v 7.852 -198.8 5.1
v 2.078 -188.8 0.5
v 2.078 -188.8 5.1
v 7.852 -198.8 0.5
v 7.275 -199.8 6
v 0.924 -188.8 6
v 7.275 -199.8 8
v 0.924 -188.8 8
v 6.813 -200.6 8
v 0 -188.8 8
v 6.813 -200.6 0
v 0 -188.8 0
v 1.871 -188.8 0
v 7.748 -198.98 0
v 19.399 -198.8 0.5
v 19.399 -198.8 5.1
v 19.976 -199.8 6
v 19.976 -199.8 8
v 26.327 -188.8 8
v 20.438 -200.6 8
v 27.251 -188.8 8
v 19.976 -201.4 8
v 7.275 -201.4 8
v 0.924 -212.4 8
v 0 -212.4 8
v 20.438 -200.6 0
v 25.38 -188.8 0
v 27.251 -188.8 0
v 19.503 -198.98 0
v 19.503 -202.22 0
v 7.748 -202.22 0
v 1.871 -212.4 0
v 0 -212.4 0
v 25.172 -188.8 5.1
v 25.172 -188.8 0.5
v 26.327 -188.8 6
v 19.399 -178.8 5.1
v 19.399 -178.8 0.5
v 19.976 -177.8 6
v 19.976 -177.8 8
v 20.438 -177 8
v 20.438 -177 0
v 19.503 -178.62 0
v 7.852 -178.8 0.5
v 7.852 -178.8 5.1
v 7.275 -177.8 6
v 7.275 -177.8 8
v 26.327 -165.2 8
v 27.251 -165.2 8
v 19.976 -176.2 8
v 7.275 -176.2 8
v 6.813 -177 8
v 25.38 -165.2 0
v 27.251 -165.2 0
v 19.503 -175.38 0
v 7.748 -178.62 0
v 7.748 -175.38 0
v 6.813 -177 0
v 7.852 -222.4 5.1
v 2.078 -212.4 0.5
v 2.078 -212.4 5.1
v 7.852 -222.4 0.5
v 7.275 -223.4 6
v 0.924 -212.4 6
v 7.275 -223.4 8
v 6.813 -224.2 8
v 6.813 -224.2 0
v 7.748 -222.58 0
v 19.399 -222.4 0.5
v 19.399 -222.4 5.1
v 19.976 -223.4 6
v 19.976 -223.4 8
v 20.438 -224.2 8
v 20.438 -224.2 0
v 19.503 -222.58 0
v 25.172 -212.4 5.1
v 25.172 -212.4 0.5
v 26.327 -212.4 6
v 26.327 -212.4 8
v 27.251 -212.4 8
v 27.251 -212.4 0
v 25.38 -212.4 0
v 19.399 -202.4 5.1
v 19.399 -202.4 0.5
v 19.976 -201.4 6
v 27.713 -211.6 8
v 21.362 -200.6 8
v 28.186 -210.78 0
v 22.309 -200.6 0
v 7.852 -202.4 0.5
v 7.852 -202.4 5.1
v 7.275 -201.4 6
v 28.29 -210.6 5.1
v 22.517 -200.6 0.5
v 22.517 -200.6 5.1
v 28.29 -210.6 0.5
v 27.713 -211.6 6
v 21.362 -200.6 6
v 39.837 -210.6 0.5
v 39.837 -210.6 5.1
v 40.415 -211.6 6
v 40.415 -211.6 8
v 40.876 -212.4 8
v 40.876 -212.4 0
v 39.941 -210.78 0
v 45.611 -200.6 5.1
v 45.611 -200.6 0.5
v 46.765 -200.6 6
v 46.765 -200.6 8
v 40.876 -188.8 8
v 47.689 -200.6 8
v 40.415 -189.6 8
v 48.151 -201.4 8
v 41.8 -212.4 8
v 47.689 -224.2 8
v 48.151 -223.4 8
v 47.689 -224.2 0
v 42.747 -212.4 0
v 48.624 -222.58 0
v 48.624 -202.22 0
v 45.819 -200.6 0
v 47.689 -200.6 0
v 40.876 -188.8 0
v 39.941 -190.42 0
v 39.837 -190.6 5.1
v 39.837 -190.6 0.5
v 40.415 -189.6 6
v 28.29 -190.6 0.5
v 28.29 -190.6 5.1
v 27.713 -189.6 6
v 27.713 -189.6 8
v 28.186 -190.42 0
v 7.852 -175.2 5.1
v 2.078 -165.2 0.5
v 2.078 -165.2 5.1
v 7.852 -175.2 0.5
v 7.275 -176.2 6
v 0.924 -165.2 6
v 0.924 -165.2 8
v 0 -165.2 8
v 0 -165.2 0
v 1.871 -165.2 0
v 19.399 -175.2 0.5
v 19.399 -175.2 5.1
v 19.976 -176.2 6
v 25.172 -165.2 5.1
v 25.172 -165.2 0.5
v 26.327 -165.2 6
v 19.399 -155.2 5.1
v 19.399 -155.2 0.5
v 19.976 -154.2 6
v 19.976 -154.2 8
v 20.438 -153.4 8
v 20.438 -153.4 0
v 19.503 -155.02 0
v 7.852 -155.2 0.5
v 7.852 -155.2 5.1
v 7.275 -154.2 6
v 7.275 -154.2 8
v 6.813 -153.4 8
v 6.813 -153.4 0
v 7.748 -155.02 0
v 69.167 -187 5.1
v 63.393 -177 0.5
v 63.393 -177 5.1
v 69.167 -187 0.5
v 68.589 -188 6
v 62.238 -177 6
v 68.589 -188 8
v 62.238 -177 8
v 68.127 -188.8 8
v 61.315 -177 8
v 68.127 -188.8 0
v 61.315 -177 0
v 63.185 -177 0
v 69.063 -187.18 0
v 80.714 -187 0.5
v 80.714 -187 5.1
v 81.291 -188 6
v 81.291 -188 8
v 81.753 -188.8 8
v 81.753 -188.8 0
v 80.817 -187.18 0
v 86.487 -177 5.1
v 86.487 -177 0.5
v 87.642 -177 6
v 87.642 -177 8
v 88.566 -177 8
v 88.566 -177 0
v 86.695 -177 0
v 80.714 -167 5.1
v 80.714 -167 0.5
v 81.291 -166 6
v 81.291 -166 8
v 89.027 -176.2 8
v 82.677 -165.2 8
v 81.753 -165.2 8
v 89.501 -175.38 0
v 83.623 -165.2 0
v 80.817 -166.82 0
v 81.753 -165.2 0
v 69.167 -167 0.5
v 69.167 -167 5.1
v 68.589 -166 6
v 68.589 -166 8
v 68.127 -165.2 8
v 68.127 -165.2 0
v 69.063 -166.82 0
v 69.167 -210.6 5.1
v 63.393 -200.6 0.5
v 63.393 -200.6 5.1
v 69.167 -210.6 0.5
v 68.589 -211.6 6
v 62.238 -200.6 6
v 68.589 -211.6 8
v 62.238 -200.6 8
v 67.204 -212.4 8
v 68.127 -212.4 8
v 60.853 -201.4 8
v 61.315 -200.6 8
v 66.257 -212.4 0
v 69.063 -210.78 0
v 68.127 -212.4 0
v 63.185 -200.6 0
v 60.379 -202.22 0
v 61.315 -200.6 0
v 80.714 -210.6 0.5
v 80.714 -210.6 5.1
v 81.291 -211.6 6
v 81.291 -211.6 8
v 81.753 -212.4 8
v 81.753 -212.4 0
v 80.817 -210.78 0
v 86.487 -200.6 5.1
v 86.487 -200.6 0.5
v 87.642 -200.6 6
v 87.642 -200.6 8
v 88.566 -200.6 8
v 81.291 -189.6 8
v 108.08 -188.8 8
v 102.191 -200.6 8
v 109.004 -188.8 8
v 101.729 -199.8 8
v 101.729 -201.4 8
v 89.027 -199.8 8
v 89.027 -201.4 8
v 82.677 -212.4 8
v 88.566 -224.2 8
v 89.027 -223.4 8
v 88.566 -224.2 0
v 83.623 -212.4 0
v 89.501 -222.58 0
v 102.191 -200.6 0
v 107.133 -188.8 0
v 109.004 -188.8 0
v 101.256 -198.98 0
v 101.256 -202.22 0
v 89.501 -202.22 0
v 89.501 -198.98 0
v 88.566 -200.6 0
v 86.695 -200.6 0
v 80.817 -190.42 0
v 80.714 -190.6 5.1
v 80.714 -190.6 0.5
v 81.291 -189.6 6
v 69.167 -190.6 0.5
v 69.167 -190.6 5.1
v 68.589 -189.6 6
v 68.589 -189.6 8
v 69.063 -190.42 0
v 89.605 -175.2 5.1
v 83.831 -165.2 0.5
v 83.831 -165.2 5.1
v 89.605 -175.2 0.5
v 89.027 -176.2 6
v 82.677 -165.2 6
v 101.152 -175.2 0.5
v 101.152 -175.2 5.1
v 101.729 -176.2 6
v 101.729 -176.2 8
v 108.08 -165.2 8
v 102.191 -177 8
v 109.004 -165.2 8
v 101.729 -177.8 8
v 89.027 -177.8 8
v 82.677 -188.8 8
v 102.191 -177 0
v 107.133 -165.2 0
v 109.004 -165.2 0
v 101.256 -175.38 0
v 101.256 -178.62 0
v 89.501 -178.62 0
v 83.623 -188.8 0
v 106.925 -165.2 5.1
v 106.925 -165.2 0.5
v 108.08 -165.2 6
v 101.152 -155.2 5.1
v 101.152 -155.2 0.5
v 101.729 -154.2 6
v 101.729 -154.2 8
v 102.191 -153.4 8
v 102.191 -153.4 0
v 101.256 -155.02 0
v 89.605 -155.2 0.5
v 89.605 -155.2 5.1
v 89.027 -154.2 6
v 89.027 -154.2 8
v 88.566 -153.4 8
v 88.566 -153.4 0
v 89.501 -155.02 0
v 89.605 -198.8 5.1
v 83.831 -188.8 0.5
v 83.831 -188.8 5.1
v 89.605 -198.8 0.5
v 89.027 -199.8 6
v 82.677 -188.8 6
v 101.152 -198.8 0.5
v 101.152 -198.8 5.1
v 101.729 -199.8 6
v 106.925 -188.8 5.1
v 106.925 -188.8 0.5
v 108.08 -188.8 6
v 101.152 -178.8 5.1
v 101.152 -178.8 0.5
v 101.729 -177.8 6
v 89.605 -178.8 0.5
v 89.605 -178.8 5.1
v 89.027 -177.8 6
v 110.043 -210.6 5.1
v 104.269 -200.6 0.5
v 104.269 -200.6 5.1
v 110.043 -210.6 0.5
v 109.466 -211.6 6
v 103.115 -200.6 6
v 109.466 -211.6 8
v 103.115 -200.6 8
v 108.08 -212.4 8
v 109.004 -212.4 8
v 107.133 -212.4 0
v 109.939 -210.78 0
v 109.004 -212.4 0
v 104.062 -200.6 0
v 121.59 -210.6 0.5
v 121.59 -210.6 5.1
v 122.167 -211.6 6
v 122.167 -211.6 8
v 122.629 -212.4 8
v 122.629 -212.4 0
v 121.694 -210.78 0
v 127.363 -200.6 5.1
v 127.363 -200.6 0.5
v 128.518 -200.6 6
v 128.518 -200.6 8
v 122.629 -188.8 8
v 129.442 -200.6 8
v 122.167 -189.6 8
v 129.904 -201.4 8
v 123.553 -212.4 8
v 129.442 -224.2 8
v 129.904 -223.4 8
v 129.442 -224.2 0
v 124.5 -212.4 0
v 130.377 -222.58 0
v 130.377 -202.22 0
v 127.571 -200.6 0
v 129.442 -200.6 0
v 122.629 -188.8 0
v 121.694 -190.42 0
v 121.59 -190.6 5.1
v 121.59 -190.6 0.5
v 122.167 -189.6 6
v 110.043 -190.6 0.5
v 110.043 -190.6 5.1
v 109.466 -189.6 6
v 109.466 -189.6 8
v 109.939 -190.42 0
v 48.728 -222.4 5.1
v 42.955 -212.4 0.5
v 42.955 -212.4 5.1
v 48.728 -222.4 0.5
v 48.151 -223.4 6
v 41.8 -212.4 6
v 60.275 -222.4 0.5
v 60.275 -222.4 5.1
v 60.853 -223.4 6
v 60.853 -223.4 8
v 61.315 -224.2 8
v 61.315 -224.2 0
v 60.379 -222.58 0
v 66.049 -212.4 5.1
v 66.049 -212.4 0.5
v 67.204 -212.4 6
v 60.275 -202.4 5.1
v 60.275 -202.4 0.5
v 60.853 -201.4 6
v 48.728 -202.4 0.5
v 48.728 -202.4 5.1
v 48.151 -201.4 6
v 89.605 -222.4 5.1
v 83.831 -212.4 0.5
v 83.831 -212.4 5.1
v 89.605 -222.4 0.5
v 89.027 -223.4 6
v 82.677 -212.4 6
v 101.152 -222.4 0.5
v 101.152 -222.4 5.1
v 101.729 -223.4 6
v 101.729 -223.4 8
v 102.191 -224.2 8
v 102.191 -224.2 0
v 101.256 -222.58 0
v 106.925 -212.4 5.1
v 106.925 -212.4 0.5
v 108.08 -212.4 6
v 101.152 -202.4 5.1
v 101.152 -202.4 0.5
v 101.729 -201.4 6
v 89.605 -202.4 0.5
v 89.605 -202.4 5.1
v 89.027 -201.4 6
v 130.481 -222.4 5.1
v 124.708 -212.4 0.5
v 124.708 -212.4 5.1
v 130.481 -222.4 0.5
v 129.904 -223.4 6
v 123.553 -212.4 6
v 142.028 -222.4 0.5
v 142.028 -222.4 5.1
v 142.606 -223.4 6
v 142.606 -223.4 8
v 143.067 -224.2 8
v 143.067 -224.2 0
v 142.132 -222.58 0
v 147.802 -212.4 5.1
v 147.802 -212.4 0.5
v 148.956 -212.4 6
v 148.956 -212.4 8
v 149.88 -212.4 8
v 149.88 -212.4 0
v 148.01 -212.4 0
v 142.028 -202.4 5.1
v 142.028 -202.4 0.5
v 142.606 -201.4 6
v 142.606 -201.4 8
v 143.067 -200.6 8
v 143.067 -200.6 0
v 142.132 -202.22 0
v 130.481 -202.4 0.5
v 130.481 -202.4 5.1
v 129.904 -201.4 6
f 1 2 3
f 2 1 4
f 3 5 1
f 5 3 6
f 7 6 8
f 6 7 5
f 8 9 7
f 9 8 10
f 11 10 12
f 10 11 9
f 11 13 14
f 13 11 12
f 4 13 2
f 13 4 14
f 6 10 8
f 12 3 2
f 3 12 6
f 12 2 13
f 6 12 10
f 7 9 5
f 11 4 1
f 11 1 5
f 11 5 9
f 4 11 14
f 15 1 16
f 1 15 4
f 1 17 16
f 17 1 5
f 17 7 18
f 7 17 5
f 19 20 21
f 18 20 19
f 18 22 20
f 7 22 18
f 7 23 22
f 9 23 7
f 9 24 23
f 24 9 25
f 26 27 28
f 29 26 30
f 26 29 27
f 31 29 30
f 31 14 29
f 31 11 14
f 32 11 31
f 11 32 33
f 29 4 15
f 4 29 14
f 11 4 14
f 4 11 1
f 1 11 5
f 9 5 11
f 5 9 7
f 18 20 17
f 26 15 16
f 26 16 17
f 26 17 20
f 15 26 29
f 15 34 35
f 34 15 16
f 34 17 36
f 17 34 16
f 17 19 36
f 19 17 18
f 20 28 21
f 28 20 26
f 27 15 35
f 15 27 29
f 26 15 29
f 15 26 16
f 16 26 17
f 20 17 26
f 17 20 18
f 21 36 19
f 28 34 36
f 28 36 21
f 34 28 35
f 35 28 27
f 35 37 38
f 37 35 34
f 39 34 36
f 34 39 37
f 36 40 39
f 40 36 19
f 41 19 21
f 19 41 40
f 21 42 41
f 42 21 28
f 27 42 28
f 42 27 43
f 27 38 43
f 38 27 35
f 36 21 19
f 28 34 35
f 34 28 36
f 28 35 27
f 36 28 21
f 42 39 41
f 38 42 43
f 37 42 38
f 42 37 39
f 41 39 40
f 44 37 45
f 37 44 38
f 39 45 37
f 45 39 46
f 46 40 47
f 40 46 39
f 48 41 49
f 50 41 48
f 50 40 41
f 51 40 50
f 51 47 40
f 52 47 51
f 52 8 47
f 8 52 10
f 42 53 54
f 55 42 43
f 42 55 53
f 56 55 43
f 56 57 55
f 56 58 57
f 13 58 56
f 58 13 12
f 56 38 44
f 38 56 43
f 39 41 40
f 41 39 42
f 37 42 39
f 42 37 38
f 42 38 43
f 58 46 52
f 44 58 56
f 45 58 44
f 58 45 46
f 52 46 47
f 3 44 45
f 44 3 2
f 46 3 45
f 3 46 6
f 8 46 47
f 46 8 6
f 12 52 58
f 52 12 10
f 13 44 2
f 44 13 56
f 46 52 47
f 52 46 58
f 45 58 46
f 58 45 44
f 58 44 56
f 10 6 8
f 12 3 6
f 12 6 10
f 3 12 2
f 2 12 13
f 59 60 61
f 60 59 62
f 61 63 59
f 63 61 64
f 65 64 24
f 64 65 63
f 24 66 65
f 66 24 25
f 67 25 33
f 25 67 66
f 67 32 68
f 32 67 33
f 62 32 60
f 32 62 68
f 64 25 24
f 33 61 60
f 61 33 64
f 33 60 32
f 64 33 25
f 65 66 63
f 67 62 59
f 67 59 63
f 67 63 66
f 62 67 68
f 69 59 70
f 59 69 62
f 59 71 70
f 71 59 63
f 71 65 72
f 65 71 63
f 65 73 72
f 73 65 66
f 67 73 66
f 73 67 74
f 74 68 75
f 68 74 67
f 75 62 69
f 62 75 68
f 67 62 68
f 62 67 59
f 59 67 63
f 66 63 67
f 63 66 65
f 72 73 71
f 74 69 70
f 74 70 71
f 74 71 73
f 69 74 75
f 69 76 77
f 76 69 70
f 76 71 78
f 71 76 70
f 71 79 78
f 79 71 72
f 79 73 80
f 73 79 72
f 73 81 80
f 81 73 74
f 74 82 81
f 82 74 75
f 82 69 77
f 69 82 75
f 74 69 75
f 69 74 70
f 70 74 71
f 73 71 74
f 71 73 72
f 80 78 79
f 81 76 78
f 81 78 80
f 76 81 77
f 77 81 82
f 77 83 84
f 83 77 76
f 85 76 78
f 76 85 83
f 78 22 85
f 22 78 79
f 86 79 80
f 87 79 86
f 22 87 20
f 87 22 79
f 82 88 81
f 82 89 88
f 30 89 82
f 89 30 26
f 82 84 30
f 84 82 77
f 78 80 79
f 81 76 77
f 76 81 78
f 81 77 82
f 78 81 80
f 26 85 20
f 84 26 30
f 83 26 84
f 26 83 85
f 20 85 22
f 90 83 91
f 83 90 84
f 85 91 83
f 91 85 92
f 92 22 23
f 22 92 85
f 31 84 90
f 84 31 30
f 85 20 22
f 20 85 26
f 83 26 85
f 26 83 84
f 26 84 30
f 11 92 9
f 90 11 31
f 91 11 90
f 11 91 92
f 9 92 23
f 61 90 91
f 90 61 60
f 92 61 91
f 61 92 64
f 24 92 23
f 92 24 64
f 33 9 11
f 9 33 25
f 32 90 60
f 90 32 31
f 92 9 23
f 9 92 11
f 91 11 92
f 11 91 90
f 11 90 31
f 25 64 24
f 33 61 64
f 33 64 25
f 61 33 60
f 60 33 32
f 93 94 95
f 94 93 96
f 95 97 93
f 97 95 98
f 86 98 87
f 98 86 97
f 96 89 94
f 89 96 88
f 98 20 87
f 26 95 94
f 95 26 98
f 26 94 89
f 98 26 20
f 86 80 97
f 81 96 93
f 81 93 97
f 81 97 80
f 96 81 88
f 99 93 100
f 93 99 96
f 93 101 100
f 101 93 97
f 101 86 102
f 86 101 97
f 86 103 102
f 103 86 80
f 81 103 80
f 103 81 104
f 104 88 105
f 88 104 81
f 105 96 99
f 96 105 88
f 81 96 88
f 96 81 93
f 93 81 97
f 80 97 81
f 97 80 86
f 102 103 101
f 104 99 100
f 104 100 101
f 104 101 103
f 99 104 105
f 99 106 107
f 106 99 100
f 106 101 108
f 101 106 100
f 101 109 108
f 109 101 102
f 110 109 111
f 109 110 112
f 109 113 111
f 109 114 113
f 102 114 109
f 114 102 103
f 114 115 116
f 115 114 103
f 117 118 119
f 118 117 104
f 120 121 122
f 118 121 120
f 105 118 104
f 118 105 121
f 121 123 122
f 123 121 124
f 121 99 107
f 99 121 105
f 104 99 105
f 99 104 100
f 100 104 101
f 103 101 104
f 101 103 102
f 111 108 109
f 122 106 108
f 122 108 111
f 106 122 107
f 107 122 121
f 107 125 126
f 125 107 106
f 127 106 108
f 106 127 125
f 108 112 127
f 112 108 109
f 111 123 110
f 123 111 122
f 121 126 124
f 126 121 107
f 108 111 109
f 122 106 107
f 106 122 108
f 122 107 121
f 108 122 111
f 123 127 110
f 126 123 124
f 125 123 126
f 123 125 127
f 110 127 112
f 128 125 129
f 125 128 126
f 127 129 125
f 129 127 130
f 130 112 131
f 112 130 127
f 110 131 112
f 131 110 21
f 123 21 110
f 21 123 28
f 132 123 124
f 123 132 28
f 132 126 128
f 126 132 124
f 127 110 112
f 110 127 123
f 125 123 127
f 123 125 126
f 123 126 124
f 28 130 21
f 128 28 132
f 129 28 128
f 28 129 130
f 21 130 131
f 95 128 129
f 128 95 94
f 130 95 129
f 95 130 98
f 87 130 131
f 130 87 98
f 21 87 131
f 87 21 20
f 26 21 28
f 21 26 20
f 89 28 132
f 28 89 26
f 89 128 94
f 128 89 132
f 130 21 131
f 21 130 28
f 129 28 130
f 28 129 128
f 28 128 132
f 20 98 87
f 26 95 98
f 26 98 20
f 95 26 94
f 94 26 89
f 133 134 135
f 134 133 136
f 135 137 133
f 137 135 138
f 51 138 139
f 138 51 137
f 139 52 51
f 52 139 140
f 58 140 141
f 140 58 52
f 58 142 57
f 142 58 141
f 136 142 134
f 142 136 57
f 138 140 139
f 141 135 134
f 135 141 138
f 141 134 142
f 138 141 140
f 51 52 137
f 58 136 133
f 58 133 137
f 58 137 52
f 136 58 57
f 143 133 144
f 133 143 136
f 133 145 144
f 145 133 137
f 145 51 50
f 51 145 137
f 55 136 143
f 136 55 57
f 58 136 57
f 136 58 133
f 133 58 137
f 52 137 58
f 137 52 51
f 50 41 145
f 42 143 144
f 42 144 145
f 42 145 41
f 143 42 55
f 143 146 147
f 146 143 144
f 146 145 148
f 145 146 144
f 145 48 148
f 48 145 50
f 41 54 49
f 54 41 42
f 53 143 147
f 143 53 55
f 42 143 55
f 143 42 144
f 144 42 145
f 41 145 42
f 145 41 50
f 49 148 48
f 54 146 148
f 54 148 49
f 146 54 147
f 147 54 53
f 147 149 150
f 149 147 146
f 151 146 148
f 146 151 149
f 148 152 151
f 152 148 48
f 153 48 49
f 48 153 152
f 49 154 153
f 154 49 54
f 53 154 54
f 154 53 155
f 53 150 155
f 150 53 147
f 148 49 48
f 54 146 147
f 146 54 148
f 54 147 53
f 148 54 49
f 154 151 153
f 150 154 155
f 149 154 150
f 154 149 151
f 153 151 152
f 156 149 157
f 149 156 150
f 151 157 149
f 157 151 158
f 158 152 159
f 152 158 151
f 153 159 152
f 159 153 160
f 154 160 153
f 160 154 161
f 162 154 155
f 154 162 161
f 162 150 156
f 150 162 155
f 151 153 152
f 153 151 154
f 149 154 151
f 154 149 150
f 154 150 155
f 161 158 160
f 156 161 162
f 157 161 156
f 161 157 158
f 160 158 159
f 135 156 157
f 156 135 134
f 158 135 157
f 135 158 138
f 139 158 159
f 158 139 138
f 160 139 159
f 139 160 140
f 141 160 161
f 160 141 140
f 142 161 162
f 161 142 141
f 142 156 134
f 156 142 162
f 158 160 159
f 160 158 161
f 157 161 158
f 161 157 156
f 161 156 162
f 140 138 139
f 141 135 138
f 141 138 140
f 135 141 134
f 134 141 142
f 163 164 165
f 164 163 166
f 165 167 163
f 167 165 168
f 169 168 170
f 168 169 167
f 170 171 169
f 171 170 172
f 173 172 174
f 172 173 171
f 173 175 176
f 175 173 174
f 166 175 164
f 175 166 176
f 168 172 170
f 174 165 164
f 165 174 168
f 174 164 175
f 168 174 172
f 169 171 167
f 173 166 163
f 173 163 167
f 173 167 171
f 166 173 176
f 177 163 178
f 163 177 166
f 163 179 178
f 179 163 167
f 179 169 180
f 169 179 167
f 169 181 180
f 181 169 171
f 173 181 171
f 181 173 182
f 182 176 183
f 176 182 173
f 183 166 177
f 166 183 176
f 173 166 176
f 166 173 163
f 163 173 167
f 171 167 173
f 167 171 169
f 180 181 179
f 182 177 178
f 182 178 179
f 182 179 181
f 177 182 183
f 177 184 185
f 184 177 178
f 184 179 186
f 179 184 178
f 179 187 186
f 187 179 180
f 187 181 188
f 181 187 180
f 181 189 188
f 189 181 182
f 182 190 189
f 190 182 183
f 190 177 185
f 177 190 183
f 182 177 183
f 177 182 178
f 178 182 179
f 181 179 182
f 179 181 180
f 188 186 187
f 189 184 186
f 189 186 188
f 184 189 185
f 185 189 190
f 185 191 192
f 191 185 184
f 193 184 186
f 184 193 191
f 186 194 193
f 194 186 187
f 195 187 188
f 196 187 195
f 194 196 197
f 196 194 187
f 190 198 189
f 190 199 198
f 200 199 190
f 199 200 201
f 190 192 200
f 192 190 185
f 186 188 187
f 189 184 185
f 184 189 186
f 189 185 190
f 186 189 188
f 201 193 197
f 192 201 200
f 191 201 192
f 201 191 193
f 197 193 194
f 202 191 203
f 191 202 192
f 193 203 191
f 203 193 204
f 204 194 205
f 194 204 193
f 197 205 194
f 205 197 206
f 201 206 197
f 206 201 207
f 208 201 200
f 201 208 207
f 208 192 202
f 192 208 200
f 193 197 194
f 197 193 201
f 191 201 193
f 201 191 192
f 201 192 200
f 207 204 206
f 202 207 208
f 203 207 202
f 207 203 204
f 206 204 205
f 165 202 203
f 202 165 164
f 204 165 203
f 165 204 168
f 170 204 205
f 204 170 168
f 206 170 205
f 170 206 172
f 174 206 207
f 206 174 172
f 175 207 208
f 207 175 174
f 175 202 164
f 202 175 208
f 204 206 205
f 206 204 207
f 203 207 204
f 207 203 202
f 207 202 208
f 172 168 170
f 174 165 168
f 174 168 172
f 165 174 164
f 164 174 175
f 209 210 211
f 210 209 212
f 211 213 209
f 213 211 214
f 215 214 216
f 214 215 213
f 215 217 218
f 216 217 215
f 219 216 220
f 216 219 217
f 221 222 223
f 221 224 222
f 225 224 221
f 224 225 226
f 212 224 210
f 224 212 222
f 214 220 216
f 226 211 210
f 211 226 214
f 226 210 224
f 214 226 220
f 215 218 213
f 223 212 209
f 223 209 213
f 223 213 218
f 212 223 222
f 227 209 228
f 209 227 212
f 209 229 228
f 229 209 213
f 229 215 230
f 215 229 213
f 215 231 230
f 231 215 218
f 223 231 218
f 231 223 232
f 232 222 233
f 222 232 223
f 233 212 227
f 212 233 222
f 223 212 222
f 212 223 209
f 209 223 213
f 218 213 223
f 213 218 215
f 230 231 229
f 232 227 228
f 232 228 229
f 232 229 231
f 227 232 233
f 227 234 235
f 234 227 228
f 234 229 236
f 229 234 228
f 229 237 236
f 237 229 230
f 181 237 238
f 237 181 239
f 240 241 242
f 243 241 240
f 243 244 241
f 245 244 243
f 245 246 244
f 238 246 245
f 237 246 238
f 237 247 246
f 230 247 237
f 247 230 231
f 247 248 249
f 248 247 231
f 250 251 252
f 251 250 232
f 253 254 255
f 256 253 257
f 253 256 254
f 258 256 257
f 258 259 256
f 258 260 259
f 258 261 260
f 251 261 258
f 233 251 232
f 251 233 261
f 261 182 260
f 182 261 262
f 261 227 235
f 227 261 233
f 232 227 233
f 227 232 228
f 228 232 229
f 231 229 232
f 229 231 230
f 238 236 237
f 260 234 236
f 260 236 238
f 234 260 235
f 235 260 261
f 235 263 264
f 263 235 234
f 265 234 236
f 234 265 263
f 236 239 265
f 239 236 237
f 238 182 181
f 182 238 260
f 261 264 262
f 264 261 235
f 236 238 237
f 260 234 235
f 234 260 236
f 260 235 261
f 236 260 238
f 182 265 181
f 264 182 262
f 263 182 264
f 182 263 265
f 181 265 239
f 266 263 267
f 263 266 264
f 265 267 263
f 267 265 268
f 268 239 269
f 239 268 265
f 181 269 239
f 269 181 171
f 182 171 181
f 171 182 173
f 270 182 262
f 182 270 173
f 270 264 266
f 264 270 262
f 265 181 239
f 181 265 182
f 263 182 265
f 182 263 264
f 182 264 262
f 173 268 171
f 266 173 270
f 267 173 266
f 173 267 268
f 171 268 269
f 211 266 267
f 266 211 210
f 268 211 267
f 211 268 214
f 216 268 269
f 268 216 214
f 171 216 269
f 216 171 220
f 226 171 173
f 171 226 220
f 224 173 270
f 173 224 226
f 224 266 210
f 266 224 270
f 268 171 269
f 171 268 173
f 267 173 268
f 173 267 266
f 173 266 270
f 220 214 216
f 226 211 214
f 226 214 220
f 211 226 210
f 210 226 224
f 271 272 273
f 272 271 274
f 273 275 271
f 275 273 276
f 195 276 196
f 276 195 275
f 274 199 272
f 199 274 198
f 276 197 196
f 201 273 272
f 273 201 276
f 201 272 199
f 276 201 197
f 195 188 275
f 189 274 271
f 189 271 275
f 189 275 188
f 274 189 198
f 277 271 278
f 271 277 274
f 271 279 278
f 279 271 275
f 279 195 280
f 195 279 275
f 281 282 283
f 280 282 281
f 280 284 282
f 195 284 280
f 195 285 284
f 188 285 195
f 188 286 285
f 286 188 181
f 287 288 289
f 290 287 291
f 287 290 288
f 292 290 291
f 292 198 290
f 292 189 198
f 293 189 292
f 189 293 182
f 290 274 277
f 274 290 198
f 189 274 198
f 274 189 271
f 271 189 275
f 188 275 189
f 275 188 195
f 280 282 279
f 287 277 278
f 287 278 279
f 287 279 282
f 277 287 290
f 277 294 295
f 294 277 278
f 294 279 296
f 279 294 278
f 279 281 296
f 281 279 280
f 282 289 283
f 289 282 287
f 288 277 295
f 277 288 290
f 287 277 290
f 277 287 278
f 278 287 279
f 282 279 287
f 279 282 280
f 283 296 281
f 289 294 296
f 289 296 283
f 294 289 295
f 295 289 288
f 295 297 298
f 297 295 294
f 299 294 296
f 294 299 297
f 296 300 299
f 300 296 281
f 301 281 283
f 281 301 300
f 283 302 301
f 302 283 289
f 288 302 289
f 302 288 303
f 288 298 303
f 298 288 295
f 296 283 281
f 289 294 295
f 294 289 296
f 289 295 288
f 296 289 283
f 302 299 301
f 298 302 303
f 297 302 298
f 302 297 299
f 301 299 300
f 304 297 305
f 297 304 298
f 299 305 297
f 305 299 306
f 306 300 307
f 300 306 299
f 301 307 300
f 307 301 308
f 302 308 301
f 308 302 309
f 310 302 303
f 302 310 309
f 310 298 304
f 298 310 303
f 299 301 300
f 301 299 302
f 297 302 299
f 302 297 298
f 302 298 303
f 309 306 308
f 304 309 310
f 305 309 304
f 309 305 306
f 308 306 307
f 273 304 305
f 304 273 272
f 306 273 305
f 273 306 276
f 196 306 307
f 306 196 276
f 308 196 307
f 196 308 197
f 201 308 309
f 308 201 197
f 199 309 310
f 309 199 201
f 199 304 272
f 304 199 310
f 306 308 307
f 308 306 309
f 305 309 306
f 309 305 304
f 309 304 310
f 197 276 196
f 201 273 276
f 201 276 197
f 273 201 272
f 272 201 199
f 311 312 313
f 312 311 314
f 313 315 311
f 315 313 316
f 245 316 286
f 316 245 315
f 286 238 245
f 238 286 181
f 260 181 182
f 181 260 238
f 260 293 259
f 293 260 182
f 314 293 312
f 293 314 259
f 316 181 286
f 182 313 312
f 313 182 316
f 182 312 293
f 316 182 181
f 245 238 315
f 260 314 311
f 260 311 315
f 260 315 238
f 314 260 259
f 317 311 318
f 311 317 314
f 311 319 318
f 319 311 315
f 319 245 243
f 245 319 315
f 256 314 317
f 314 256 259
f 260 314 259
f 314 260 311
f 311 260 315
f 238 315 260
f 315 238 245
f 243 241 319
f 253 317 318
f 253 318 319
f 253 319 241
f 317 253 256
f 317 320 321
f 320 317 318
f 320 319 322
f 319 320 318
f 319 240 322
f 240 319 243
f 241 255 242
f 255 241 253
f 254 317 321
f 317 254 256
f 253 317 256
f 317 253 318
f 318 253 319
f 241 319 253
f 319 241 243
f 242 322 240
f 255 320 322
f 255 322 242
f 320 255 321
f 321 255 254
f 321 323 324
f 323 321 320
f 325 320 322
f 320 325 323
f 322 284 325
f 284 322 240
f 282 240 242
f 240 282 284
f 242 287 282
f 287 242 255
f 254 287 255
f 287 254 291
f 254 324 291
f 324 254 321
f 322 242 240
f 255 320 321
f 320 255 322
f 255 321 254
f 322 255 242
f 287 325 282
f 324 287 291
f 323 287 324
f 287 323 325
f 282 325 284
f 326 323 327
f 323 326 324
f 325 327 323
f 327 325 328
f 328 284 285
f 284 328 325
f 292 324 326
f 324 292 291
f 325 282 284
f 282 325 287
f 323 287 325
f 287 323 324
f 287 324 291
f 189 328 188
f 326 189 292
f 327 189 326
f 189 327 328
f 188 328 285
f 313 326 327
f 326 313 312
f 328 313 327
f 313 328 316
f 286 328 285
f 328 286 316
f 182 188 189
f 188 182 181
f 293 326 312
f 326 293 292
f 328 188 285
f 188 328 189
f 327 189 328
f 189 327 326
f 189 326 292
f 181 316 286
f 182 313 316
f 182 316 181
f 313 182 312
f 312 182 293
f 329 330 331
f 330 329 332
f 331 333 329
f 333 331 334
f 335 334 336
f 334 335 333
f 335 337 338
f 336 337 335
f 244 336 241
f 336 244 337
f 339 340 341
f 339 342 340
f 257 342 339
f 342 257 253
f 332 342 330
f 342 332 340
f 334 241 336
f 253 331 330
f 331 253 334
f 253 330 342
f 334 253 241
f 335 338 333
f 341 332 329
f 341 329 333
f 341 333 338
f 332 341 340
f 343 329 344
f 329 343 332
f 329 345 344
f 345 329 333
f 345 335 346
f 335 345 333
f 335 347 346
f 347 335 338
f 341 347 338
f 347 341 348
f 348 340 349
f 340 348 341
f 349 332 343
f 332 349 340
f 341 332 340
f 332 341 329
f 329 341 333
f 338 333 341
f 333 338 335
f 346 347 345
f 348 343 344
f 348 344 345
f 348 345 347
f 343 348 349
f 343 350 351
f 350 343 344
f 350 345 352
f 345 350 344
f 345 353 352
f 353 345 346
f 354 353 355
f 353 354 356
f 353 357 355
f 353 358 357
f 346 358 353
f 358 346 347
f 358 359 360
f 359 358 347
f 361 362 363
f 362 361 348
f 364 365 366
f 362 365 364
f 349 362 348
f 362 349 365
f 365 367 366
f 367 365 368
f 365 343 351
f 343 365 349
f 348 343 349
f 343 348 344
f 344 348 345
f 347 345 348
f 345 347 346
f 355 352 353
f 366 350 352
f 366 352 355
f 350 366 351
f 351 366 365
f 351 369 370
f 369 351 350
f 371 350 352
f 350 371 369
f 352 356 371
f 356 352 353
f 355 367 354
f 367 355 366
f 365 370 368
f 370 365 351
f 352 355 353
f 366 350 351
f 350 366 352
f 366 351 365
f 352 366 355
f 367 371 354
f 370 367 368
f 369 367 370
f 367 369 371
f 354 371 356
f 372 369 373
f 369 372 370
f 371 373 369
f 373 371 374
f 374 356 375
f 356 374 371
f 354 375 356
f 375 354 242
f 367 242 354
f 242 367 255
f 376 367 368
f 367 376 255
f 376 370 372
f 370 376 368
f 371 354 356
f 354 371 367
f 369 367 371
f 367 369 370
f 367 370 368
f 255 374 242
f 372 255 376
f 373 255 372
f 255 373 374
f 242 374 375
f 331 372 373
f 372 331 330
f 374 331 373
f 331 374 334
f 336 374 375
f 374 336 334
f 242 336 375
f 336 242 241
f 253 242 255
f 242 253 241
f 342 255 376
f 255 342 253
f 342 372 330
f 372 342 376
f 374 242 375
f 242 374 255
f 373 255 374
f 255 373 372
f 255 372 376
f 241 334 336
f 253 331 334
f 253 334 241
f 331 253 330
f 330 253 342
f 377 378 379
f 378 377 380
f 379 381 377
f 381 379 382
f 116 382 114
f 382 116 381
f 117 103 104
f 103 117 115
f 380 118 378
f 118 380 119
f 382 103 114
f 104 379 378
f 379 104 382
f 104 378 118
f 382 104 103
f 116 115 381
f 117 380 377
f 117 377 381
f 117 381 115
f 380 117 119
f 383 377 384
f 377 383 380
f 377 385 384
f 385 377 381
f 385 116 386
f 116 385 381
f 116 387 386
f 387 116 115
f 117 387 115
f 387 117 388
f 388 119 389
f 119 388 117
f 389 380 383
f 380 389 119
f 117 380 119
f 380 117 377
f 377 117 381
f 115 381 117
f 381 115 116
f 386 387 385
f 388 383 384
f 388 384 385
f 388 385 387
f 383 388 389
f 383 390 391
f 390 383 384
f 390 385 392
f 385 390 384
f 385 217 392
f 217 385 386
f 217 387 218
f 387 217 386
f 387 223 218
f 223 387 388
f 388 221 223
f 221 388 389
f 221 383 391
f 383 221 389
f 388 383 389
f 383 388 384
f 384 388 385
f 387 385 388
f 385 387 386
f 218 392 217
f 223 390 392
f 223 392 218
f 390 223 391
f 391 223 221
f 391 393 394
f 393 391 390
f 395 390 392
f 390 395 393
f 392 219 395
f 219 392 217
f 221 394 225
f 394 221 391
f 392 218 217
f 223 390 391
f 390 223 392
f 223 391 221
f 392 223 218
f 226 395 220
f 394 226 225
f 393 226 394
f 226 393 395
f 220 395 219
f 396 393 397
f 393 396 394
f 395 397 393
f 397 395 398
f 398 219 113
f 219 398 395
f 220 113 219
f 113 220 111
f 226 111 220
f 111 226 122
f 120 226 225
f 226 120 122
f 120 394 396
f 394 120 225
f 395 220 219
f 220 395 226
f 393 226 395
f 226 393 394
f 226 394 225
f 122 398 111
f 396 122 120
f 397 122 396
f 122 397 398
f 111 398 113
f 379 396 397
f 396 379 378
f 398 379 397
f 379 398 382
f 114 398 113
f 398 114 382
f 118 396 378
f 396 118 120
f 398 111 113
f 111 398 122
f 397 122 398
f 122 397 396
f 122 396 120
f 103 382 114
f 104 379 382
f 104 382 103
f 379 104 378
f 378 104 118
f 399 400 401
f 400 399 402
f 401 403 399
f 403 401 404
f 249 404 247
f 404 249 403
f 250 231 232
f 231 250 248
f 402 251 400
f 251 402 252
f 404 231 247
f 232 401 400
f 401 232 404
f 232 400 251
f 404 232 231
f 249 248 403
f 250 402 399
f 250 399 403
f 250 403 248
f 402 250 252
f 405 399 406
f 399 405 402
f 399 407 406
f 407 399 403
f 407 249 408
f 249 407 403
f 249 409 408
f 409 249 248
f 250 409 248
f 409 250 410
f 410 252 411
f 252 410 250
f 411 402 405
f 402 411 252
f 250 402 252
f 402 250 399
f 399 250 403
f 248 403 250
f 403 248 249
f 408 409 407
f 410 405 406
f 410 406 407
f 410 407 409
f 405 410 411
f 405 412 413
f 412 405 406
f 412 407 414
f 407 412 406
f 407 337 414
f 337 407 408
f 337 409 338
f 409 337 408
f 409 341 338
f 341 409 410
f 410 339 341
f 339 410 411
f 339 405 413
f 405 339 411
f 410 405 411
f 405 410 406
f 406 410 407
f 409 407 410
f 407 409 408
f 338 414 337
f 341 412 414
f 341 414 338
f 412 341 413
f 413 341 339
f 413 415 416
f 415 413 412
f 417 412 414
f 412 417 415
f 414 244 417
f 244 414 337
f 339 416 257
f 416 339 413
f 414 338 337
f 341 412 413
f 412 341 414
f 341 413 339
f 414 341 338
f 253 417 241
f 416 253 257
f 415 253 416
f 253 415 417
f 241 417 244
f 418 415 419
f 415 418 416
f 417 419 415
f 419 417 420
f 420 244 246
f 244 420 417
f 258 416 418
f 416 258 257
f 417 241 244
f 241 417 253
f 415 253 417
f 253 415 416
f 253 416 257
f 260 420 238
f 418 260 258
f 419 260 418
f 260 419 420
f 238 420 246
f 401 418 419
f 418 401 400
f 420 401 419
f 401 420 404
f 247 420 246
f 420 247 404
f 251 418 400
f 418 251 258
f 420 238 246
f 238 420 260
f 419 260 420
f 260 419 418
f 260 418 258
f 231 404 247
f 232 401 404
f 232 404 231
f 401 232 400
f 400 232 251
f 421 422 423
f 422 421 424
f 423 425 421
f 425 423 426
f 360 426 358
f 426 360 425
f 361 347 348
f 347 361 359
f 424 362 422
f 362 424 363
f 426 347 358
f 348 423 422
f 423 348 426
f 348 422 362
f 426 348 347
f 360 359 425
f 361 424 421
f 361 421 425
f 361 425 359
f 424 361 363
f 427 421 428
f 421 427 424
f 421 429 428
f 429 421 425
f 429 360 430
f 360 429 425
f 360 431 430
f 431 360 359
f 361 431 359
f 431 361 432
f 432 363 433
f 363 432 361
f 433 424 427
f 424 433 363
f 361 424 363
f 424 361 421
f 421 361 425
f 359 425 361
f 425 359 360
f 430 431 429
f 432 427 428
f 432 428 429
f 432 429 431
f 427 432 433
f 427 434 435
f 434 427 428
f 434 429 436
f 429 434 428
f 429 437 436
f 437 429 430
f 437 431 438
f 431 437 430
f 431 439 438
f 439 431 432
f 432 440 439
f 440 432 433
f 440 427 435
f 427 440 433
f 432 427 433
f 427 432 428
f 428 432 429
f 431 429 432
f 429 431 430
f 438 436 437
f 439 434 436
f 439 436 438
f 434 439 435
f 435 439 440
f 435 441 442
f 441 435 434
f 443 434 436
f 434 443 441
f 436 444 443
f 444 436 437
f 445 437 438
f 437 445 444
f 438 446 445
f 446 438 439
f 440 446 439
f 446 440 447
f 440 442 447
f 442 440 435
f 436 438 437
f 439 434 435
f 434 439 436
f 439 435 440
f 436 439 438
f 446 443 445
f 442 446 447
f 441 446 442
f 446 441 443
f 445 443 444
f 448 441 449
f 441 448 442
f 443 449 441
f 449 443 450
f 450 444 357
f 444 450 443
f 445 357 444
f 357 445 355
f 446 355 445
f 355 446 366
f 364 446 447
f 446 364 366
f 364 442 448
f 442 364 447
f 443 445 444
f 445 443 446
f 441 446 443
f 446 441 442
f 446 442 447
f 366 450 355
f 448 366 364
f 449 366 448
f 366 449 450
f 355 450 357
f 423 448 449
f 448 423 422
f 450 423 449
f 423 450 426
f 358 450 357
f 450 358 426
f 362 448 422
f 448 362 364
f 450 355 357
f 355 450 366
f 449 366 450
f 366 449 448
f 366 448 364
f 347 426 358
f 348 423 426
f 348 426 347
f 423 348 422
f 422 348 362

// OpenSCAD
/*[ Hex unit size ]*/

//Depth of the grid
depth = 8;
//Width of the hexagon's hole (flat side to flat side)
hole_width = 20;
//Thickness of the wall forming each hexagon
wall_thickness = 1.8;

/*[ Grid size settings ]*/
max_grid_width=100;
max_grid_height=100;

/*[ Grid shape ]*/
//If checked, ignores custom column sizes and fills grid to maximum size.
fill=false;
flip_staggering=false;
//Amount of hexagons per column. Each entry defines a one column, where the number specifies the amount of hex units that will be generated for the respective column. (Ignored if "fill" is checked)
//columns=[ 9, 10, 9, 10, 9, 10, 9, 10, 9,];
//columns=[ 9, 10, 9, 10, 9, 10, 9, 10, 9, 10];
columns=[10, 9, 10, 9, 10, 9, 10, 9, 10];
include_offsets=false;
//Optional: Offset for each column. This will ignore grid size limits.
column_offsets=[0,-2,-3,-1,0,2,4];
include_gaps=true;
//Optional: Gaps for each column. *NOTE: Change these values in the code. Seems like 2D vector parameters aren't supported by the parameter editor and are always overwritten by the defaults.
column_gaps=[
             [1,2,3,4,5,6,7],
             [1,2,3,4,5,6,7,8],
             [1,2,3,4,5,6,7,8,9], 
             [1,2,3,4,5,6,7], 
             [1,2,3,4,5,6,7],
             [1,2,3,4,5,6,7,8],
             [1,2,3,4,5,6,7,8,9],
             [1,2,3,4,5,6,7,8,9],
             [1,2,3,4,5,6,7,8,9,10],
             ];

/*[ Flat edges ]*/
edge_left = false;
edge_top = true;
edge_right = false;
edge_bottom = false;


//Calculated global variables
//Hexagon dimensions
hex_inner_r = hole_width/sqrt(3); //Inner radius/side length (center to point)
hex_h=hole_width+wall_thickness*2; //Outer side to side distance
hex_s=hex_h/sqrt(3); //Outer radius/side length 
hex_d=2*hex_s; //Outer diameter (point to point)
hex_t=hex_s/2;
//Grid dimensions
max_grid_hexagons_x = fill? floor(max_grid_width/(hex_d-hex_t) +(edge_left?0.5:0) +(edge_right?0.5:0)): len(columns);
max_grid_hexagons_y = fill? floor(max_grid_height/hex_h +(edge_top?0.5:0) +(edge_bottom?0.5:0)): max(columns);
max_grid_hexagons_y_lo = fill? floor(max_grid_height/hex_h - 0.5 +(edge_top?0.5:0) +(edge_bottom?0.5:0)): (max(columns) - 0.5);
total_width = max_grid_hexagons_x * (hex_d-hex_t) + hex_t;
total_height = hex_h*max(max_grid_hexagons_y - 0.5, max_grid_hexagons_y_lo);


translate([edge_left?0:hex_s, edge_top?0:-hex_h/2, 0])
grid(columns, include_offsets?column_offsets:[], include_gaps?column_gaps:[], depth, hole_width, wall_thickness, fill);


module grid(cols, offsets, gaps, height, hole_width, wall_width, fill){    
    for(hcol = [0:fill?max_grid_hexagons_x-1:(len(cols)-1)]){
        for(hrow = [0:(fill?(max_grid_hexagons_y-1):(cols[hcol]-1))]) {
            skip = hcol<len(gaps) && len(search(hrow+1, gaps[hcol])) > 0;          
            if(!skip){
                offset_value=hcol>len(offsets)-1?0:offsets[hcol];
                
                lo = (hcol+(flip_staggering?1:0))%2;
                x = (hex_d-hex_t)*hcol;
                y = -(hex_h)*(hrow + offset_value + lo/2);                
                
                if(hcol<max_grid_hexagons_x && hrow<(lo==0?max_grid_hexagons_y:max_grid_hexagons_y_lo)){
                    left = edge_left && hcol==0;
                    top = edge_top && hrow==0 && hcol%2==(flip_staggering?1:0);
                    right = edge_right && hcol==max_grid_hexagons_x-1;
                    bottom = edge_bottom && hrow+1==(lo==0?max_grid_hexagons_y:max_grid_hexagons_y_lo) && -y+hex_h>total_height+0.001 && -y+hex_h/2<=total_height;
                    translate([x, y, 0]) halfhex(height, hex_s, wall_width, hole_width, left, top, right, bottom);
                }
            }        
        }
    }
}

module halfhex(height, radius, wall_thickness, hole_width, left, top, right, bottom){
    difference(){
        union(){
            hex(height, radius, wall_thickness, hole_width);
            if(left) translate([0, hex_h/2, 0]) wall(depth, wall_thickness, hex_h);
            if(top) translate([hex_d/2, 0, 0]) rotate([0,0,-90]) wall(depth, wall_thickness, hex_d);
            if(right) translate([0, -hex_h/2, 0]) rotate([0,0,180]) wall(depth, wall_thickness, hex_h);
            if(bottom) translate([-hex_d/2, 0, 0]) rotate([0,0,90]) wall(depth, wall_thickness, hex_d);
        }
        if(left) translate([-hex_d/2, -hex_h, 0]) cube([hex_d/2, 2*hex_h, depth]);
        if(top) translate([-hex_d/2, 0, 0]) cube([hex_d, hex_h, depth]);
        if(right) translate([0, -hex_h, 0]) cube([hex_d/2, 2*hex_h, depth]);
        if(bottom) translate([-hex_d/2, -hex_h, 0]) cube([hex_d, hex_h, depth]);
    }
}

module hex(height, radius, wall_thickness, hole_width){
    for(i=[0:5]){
        rotate([0,0,i*60+30])
        translate([-hole_width/2-wall_thickness, radius/2, 0])
        wall(height, wall_thickness, radius);
    }
}

module wall(height, wall_thickness, length){
    hmax=height;
    hmin=5.1;
    hd=2;
    tmax=wall_thickness;
    tmin=wall_thickness-1;   
    ft = 0.18;//fillet thickness
    fh = 0.5;//fillet height
    color("white")
    difference(){
        color([0,0,1])
        rotate([90,0,0])
            linear_extrude(length)   
            polygon([[0,0], [0,hmax], [tmin,hmax], [tmin,hmax-hd], [tmax,hmin], [tmax,fh], [tmax-ft,0]]);
        //Fillet
        rotate([0,0,-30])
            cube([4*tmax, 2*tmax, hmax]);
        mirror([0,1,0])
            translate([0,length,0])
            rotate([0,0,-30])
            cube([4*tmax, 2*tmax, hmax]);
    }
}
